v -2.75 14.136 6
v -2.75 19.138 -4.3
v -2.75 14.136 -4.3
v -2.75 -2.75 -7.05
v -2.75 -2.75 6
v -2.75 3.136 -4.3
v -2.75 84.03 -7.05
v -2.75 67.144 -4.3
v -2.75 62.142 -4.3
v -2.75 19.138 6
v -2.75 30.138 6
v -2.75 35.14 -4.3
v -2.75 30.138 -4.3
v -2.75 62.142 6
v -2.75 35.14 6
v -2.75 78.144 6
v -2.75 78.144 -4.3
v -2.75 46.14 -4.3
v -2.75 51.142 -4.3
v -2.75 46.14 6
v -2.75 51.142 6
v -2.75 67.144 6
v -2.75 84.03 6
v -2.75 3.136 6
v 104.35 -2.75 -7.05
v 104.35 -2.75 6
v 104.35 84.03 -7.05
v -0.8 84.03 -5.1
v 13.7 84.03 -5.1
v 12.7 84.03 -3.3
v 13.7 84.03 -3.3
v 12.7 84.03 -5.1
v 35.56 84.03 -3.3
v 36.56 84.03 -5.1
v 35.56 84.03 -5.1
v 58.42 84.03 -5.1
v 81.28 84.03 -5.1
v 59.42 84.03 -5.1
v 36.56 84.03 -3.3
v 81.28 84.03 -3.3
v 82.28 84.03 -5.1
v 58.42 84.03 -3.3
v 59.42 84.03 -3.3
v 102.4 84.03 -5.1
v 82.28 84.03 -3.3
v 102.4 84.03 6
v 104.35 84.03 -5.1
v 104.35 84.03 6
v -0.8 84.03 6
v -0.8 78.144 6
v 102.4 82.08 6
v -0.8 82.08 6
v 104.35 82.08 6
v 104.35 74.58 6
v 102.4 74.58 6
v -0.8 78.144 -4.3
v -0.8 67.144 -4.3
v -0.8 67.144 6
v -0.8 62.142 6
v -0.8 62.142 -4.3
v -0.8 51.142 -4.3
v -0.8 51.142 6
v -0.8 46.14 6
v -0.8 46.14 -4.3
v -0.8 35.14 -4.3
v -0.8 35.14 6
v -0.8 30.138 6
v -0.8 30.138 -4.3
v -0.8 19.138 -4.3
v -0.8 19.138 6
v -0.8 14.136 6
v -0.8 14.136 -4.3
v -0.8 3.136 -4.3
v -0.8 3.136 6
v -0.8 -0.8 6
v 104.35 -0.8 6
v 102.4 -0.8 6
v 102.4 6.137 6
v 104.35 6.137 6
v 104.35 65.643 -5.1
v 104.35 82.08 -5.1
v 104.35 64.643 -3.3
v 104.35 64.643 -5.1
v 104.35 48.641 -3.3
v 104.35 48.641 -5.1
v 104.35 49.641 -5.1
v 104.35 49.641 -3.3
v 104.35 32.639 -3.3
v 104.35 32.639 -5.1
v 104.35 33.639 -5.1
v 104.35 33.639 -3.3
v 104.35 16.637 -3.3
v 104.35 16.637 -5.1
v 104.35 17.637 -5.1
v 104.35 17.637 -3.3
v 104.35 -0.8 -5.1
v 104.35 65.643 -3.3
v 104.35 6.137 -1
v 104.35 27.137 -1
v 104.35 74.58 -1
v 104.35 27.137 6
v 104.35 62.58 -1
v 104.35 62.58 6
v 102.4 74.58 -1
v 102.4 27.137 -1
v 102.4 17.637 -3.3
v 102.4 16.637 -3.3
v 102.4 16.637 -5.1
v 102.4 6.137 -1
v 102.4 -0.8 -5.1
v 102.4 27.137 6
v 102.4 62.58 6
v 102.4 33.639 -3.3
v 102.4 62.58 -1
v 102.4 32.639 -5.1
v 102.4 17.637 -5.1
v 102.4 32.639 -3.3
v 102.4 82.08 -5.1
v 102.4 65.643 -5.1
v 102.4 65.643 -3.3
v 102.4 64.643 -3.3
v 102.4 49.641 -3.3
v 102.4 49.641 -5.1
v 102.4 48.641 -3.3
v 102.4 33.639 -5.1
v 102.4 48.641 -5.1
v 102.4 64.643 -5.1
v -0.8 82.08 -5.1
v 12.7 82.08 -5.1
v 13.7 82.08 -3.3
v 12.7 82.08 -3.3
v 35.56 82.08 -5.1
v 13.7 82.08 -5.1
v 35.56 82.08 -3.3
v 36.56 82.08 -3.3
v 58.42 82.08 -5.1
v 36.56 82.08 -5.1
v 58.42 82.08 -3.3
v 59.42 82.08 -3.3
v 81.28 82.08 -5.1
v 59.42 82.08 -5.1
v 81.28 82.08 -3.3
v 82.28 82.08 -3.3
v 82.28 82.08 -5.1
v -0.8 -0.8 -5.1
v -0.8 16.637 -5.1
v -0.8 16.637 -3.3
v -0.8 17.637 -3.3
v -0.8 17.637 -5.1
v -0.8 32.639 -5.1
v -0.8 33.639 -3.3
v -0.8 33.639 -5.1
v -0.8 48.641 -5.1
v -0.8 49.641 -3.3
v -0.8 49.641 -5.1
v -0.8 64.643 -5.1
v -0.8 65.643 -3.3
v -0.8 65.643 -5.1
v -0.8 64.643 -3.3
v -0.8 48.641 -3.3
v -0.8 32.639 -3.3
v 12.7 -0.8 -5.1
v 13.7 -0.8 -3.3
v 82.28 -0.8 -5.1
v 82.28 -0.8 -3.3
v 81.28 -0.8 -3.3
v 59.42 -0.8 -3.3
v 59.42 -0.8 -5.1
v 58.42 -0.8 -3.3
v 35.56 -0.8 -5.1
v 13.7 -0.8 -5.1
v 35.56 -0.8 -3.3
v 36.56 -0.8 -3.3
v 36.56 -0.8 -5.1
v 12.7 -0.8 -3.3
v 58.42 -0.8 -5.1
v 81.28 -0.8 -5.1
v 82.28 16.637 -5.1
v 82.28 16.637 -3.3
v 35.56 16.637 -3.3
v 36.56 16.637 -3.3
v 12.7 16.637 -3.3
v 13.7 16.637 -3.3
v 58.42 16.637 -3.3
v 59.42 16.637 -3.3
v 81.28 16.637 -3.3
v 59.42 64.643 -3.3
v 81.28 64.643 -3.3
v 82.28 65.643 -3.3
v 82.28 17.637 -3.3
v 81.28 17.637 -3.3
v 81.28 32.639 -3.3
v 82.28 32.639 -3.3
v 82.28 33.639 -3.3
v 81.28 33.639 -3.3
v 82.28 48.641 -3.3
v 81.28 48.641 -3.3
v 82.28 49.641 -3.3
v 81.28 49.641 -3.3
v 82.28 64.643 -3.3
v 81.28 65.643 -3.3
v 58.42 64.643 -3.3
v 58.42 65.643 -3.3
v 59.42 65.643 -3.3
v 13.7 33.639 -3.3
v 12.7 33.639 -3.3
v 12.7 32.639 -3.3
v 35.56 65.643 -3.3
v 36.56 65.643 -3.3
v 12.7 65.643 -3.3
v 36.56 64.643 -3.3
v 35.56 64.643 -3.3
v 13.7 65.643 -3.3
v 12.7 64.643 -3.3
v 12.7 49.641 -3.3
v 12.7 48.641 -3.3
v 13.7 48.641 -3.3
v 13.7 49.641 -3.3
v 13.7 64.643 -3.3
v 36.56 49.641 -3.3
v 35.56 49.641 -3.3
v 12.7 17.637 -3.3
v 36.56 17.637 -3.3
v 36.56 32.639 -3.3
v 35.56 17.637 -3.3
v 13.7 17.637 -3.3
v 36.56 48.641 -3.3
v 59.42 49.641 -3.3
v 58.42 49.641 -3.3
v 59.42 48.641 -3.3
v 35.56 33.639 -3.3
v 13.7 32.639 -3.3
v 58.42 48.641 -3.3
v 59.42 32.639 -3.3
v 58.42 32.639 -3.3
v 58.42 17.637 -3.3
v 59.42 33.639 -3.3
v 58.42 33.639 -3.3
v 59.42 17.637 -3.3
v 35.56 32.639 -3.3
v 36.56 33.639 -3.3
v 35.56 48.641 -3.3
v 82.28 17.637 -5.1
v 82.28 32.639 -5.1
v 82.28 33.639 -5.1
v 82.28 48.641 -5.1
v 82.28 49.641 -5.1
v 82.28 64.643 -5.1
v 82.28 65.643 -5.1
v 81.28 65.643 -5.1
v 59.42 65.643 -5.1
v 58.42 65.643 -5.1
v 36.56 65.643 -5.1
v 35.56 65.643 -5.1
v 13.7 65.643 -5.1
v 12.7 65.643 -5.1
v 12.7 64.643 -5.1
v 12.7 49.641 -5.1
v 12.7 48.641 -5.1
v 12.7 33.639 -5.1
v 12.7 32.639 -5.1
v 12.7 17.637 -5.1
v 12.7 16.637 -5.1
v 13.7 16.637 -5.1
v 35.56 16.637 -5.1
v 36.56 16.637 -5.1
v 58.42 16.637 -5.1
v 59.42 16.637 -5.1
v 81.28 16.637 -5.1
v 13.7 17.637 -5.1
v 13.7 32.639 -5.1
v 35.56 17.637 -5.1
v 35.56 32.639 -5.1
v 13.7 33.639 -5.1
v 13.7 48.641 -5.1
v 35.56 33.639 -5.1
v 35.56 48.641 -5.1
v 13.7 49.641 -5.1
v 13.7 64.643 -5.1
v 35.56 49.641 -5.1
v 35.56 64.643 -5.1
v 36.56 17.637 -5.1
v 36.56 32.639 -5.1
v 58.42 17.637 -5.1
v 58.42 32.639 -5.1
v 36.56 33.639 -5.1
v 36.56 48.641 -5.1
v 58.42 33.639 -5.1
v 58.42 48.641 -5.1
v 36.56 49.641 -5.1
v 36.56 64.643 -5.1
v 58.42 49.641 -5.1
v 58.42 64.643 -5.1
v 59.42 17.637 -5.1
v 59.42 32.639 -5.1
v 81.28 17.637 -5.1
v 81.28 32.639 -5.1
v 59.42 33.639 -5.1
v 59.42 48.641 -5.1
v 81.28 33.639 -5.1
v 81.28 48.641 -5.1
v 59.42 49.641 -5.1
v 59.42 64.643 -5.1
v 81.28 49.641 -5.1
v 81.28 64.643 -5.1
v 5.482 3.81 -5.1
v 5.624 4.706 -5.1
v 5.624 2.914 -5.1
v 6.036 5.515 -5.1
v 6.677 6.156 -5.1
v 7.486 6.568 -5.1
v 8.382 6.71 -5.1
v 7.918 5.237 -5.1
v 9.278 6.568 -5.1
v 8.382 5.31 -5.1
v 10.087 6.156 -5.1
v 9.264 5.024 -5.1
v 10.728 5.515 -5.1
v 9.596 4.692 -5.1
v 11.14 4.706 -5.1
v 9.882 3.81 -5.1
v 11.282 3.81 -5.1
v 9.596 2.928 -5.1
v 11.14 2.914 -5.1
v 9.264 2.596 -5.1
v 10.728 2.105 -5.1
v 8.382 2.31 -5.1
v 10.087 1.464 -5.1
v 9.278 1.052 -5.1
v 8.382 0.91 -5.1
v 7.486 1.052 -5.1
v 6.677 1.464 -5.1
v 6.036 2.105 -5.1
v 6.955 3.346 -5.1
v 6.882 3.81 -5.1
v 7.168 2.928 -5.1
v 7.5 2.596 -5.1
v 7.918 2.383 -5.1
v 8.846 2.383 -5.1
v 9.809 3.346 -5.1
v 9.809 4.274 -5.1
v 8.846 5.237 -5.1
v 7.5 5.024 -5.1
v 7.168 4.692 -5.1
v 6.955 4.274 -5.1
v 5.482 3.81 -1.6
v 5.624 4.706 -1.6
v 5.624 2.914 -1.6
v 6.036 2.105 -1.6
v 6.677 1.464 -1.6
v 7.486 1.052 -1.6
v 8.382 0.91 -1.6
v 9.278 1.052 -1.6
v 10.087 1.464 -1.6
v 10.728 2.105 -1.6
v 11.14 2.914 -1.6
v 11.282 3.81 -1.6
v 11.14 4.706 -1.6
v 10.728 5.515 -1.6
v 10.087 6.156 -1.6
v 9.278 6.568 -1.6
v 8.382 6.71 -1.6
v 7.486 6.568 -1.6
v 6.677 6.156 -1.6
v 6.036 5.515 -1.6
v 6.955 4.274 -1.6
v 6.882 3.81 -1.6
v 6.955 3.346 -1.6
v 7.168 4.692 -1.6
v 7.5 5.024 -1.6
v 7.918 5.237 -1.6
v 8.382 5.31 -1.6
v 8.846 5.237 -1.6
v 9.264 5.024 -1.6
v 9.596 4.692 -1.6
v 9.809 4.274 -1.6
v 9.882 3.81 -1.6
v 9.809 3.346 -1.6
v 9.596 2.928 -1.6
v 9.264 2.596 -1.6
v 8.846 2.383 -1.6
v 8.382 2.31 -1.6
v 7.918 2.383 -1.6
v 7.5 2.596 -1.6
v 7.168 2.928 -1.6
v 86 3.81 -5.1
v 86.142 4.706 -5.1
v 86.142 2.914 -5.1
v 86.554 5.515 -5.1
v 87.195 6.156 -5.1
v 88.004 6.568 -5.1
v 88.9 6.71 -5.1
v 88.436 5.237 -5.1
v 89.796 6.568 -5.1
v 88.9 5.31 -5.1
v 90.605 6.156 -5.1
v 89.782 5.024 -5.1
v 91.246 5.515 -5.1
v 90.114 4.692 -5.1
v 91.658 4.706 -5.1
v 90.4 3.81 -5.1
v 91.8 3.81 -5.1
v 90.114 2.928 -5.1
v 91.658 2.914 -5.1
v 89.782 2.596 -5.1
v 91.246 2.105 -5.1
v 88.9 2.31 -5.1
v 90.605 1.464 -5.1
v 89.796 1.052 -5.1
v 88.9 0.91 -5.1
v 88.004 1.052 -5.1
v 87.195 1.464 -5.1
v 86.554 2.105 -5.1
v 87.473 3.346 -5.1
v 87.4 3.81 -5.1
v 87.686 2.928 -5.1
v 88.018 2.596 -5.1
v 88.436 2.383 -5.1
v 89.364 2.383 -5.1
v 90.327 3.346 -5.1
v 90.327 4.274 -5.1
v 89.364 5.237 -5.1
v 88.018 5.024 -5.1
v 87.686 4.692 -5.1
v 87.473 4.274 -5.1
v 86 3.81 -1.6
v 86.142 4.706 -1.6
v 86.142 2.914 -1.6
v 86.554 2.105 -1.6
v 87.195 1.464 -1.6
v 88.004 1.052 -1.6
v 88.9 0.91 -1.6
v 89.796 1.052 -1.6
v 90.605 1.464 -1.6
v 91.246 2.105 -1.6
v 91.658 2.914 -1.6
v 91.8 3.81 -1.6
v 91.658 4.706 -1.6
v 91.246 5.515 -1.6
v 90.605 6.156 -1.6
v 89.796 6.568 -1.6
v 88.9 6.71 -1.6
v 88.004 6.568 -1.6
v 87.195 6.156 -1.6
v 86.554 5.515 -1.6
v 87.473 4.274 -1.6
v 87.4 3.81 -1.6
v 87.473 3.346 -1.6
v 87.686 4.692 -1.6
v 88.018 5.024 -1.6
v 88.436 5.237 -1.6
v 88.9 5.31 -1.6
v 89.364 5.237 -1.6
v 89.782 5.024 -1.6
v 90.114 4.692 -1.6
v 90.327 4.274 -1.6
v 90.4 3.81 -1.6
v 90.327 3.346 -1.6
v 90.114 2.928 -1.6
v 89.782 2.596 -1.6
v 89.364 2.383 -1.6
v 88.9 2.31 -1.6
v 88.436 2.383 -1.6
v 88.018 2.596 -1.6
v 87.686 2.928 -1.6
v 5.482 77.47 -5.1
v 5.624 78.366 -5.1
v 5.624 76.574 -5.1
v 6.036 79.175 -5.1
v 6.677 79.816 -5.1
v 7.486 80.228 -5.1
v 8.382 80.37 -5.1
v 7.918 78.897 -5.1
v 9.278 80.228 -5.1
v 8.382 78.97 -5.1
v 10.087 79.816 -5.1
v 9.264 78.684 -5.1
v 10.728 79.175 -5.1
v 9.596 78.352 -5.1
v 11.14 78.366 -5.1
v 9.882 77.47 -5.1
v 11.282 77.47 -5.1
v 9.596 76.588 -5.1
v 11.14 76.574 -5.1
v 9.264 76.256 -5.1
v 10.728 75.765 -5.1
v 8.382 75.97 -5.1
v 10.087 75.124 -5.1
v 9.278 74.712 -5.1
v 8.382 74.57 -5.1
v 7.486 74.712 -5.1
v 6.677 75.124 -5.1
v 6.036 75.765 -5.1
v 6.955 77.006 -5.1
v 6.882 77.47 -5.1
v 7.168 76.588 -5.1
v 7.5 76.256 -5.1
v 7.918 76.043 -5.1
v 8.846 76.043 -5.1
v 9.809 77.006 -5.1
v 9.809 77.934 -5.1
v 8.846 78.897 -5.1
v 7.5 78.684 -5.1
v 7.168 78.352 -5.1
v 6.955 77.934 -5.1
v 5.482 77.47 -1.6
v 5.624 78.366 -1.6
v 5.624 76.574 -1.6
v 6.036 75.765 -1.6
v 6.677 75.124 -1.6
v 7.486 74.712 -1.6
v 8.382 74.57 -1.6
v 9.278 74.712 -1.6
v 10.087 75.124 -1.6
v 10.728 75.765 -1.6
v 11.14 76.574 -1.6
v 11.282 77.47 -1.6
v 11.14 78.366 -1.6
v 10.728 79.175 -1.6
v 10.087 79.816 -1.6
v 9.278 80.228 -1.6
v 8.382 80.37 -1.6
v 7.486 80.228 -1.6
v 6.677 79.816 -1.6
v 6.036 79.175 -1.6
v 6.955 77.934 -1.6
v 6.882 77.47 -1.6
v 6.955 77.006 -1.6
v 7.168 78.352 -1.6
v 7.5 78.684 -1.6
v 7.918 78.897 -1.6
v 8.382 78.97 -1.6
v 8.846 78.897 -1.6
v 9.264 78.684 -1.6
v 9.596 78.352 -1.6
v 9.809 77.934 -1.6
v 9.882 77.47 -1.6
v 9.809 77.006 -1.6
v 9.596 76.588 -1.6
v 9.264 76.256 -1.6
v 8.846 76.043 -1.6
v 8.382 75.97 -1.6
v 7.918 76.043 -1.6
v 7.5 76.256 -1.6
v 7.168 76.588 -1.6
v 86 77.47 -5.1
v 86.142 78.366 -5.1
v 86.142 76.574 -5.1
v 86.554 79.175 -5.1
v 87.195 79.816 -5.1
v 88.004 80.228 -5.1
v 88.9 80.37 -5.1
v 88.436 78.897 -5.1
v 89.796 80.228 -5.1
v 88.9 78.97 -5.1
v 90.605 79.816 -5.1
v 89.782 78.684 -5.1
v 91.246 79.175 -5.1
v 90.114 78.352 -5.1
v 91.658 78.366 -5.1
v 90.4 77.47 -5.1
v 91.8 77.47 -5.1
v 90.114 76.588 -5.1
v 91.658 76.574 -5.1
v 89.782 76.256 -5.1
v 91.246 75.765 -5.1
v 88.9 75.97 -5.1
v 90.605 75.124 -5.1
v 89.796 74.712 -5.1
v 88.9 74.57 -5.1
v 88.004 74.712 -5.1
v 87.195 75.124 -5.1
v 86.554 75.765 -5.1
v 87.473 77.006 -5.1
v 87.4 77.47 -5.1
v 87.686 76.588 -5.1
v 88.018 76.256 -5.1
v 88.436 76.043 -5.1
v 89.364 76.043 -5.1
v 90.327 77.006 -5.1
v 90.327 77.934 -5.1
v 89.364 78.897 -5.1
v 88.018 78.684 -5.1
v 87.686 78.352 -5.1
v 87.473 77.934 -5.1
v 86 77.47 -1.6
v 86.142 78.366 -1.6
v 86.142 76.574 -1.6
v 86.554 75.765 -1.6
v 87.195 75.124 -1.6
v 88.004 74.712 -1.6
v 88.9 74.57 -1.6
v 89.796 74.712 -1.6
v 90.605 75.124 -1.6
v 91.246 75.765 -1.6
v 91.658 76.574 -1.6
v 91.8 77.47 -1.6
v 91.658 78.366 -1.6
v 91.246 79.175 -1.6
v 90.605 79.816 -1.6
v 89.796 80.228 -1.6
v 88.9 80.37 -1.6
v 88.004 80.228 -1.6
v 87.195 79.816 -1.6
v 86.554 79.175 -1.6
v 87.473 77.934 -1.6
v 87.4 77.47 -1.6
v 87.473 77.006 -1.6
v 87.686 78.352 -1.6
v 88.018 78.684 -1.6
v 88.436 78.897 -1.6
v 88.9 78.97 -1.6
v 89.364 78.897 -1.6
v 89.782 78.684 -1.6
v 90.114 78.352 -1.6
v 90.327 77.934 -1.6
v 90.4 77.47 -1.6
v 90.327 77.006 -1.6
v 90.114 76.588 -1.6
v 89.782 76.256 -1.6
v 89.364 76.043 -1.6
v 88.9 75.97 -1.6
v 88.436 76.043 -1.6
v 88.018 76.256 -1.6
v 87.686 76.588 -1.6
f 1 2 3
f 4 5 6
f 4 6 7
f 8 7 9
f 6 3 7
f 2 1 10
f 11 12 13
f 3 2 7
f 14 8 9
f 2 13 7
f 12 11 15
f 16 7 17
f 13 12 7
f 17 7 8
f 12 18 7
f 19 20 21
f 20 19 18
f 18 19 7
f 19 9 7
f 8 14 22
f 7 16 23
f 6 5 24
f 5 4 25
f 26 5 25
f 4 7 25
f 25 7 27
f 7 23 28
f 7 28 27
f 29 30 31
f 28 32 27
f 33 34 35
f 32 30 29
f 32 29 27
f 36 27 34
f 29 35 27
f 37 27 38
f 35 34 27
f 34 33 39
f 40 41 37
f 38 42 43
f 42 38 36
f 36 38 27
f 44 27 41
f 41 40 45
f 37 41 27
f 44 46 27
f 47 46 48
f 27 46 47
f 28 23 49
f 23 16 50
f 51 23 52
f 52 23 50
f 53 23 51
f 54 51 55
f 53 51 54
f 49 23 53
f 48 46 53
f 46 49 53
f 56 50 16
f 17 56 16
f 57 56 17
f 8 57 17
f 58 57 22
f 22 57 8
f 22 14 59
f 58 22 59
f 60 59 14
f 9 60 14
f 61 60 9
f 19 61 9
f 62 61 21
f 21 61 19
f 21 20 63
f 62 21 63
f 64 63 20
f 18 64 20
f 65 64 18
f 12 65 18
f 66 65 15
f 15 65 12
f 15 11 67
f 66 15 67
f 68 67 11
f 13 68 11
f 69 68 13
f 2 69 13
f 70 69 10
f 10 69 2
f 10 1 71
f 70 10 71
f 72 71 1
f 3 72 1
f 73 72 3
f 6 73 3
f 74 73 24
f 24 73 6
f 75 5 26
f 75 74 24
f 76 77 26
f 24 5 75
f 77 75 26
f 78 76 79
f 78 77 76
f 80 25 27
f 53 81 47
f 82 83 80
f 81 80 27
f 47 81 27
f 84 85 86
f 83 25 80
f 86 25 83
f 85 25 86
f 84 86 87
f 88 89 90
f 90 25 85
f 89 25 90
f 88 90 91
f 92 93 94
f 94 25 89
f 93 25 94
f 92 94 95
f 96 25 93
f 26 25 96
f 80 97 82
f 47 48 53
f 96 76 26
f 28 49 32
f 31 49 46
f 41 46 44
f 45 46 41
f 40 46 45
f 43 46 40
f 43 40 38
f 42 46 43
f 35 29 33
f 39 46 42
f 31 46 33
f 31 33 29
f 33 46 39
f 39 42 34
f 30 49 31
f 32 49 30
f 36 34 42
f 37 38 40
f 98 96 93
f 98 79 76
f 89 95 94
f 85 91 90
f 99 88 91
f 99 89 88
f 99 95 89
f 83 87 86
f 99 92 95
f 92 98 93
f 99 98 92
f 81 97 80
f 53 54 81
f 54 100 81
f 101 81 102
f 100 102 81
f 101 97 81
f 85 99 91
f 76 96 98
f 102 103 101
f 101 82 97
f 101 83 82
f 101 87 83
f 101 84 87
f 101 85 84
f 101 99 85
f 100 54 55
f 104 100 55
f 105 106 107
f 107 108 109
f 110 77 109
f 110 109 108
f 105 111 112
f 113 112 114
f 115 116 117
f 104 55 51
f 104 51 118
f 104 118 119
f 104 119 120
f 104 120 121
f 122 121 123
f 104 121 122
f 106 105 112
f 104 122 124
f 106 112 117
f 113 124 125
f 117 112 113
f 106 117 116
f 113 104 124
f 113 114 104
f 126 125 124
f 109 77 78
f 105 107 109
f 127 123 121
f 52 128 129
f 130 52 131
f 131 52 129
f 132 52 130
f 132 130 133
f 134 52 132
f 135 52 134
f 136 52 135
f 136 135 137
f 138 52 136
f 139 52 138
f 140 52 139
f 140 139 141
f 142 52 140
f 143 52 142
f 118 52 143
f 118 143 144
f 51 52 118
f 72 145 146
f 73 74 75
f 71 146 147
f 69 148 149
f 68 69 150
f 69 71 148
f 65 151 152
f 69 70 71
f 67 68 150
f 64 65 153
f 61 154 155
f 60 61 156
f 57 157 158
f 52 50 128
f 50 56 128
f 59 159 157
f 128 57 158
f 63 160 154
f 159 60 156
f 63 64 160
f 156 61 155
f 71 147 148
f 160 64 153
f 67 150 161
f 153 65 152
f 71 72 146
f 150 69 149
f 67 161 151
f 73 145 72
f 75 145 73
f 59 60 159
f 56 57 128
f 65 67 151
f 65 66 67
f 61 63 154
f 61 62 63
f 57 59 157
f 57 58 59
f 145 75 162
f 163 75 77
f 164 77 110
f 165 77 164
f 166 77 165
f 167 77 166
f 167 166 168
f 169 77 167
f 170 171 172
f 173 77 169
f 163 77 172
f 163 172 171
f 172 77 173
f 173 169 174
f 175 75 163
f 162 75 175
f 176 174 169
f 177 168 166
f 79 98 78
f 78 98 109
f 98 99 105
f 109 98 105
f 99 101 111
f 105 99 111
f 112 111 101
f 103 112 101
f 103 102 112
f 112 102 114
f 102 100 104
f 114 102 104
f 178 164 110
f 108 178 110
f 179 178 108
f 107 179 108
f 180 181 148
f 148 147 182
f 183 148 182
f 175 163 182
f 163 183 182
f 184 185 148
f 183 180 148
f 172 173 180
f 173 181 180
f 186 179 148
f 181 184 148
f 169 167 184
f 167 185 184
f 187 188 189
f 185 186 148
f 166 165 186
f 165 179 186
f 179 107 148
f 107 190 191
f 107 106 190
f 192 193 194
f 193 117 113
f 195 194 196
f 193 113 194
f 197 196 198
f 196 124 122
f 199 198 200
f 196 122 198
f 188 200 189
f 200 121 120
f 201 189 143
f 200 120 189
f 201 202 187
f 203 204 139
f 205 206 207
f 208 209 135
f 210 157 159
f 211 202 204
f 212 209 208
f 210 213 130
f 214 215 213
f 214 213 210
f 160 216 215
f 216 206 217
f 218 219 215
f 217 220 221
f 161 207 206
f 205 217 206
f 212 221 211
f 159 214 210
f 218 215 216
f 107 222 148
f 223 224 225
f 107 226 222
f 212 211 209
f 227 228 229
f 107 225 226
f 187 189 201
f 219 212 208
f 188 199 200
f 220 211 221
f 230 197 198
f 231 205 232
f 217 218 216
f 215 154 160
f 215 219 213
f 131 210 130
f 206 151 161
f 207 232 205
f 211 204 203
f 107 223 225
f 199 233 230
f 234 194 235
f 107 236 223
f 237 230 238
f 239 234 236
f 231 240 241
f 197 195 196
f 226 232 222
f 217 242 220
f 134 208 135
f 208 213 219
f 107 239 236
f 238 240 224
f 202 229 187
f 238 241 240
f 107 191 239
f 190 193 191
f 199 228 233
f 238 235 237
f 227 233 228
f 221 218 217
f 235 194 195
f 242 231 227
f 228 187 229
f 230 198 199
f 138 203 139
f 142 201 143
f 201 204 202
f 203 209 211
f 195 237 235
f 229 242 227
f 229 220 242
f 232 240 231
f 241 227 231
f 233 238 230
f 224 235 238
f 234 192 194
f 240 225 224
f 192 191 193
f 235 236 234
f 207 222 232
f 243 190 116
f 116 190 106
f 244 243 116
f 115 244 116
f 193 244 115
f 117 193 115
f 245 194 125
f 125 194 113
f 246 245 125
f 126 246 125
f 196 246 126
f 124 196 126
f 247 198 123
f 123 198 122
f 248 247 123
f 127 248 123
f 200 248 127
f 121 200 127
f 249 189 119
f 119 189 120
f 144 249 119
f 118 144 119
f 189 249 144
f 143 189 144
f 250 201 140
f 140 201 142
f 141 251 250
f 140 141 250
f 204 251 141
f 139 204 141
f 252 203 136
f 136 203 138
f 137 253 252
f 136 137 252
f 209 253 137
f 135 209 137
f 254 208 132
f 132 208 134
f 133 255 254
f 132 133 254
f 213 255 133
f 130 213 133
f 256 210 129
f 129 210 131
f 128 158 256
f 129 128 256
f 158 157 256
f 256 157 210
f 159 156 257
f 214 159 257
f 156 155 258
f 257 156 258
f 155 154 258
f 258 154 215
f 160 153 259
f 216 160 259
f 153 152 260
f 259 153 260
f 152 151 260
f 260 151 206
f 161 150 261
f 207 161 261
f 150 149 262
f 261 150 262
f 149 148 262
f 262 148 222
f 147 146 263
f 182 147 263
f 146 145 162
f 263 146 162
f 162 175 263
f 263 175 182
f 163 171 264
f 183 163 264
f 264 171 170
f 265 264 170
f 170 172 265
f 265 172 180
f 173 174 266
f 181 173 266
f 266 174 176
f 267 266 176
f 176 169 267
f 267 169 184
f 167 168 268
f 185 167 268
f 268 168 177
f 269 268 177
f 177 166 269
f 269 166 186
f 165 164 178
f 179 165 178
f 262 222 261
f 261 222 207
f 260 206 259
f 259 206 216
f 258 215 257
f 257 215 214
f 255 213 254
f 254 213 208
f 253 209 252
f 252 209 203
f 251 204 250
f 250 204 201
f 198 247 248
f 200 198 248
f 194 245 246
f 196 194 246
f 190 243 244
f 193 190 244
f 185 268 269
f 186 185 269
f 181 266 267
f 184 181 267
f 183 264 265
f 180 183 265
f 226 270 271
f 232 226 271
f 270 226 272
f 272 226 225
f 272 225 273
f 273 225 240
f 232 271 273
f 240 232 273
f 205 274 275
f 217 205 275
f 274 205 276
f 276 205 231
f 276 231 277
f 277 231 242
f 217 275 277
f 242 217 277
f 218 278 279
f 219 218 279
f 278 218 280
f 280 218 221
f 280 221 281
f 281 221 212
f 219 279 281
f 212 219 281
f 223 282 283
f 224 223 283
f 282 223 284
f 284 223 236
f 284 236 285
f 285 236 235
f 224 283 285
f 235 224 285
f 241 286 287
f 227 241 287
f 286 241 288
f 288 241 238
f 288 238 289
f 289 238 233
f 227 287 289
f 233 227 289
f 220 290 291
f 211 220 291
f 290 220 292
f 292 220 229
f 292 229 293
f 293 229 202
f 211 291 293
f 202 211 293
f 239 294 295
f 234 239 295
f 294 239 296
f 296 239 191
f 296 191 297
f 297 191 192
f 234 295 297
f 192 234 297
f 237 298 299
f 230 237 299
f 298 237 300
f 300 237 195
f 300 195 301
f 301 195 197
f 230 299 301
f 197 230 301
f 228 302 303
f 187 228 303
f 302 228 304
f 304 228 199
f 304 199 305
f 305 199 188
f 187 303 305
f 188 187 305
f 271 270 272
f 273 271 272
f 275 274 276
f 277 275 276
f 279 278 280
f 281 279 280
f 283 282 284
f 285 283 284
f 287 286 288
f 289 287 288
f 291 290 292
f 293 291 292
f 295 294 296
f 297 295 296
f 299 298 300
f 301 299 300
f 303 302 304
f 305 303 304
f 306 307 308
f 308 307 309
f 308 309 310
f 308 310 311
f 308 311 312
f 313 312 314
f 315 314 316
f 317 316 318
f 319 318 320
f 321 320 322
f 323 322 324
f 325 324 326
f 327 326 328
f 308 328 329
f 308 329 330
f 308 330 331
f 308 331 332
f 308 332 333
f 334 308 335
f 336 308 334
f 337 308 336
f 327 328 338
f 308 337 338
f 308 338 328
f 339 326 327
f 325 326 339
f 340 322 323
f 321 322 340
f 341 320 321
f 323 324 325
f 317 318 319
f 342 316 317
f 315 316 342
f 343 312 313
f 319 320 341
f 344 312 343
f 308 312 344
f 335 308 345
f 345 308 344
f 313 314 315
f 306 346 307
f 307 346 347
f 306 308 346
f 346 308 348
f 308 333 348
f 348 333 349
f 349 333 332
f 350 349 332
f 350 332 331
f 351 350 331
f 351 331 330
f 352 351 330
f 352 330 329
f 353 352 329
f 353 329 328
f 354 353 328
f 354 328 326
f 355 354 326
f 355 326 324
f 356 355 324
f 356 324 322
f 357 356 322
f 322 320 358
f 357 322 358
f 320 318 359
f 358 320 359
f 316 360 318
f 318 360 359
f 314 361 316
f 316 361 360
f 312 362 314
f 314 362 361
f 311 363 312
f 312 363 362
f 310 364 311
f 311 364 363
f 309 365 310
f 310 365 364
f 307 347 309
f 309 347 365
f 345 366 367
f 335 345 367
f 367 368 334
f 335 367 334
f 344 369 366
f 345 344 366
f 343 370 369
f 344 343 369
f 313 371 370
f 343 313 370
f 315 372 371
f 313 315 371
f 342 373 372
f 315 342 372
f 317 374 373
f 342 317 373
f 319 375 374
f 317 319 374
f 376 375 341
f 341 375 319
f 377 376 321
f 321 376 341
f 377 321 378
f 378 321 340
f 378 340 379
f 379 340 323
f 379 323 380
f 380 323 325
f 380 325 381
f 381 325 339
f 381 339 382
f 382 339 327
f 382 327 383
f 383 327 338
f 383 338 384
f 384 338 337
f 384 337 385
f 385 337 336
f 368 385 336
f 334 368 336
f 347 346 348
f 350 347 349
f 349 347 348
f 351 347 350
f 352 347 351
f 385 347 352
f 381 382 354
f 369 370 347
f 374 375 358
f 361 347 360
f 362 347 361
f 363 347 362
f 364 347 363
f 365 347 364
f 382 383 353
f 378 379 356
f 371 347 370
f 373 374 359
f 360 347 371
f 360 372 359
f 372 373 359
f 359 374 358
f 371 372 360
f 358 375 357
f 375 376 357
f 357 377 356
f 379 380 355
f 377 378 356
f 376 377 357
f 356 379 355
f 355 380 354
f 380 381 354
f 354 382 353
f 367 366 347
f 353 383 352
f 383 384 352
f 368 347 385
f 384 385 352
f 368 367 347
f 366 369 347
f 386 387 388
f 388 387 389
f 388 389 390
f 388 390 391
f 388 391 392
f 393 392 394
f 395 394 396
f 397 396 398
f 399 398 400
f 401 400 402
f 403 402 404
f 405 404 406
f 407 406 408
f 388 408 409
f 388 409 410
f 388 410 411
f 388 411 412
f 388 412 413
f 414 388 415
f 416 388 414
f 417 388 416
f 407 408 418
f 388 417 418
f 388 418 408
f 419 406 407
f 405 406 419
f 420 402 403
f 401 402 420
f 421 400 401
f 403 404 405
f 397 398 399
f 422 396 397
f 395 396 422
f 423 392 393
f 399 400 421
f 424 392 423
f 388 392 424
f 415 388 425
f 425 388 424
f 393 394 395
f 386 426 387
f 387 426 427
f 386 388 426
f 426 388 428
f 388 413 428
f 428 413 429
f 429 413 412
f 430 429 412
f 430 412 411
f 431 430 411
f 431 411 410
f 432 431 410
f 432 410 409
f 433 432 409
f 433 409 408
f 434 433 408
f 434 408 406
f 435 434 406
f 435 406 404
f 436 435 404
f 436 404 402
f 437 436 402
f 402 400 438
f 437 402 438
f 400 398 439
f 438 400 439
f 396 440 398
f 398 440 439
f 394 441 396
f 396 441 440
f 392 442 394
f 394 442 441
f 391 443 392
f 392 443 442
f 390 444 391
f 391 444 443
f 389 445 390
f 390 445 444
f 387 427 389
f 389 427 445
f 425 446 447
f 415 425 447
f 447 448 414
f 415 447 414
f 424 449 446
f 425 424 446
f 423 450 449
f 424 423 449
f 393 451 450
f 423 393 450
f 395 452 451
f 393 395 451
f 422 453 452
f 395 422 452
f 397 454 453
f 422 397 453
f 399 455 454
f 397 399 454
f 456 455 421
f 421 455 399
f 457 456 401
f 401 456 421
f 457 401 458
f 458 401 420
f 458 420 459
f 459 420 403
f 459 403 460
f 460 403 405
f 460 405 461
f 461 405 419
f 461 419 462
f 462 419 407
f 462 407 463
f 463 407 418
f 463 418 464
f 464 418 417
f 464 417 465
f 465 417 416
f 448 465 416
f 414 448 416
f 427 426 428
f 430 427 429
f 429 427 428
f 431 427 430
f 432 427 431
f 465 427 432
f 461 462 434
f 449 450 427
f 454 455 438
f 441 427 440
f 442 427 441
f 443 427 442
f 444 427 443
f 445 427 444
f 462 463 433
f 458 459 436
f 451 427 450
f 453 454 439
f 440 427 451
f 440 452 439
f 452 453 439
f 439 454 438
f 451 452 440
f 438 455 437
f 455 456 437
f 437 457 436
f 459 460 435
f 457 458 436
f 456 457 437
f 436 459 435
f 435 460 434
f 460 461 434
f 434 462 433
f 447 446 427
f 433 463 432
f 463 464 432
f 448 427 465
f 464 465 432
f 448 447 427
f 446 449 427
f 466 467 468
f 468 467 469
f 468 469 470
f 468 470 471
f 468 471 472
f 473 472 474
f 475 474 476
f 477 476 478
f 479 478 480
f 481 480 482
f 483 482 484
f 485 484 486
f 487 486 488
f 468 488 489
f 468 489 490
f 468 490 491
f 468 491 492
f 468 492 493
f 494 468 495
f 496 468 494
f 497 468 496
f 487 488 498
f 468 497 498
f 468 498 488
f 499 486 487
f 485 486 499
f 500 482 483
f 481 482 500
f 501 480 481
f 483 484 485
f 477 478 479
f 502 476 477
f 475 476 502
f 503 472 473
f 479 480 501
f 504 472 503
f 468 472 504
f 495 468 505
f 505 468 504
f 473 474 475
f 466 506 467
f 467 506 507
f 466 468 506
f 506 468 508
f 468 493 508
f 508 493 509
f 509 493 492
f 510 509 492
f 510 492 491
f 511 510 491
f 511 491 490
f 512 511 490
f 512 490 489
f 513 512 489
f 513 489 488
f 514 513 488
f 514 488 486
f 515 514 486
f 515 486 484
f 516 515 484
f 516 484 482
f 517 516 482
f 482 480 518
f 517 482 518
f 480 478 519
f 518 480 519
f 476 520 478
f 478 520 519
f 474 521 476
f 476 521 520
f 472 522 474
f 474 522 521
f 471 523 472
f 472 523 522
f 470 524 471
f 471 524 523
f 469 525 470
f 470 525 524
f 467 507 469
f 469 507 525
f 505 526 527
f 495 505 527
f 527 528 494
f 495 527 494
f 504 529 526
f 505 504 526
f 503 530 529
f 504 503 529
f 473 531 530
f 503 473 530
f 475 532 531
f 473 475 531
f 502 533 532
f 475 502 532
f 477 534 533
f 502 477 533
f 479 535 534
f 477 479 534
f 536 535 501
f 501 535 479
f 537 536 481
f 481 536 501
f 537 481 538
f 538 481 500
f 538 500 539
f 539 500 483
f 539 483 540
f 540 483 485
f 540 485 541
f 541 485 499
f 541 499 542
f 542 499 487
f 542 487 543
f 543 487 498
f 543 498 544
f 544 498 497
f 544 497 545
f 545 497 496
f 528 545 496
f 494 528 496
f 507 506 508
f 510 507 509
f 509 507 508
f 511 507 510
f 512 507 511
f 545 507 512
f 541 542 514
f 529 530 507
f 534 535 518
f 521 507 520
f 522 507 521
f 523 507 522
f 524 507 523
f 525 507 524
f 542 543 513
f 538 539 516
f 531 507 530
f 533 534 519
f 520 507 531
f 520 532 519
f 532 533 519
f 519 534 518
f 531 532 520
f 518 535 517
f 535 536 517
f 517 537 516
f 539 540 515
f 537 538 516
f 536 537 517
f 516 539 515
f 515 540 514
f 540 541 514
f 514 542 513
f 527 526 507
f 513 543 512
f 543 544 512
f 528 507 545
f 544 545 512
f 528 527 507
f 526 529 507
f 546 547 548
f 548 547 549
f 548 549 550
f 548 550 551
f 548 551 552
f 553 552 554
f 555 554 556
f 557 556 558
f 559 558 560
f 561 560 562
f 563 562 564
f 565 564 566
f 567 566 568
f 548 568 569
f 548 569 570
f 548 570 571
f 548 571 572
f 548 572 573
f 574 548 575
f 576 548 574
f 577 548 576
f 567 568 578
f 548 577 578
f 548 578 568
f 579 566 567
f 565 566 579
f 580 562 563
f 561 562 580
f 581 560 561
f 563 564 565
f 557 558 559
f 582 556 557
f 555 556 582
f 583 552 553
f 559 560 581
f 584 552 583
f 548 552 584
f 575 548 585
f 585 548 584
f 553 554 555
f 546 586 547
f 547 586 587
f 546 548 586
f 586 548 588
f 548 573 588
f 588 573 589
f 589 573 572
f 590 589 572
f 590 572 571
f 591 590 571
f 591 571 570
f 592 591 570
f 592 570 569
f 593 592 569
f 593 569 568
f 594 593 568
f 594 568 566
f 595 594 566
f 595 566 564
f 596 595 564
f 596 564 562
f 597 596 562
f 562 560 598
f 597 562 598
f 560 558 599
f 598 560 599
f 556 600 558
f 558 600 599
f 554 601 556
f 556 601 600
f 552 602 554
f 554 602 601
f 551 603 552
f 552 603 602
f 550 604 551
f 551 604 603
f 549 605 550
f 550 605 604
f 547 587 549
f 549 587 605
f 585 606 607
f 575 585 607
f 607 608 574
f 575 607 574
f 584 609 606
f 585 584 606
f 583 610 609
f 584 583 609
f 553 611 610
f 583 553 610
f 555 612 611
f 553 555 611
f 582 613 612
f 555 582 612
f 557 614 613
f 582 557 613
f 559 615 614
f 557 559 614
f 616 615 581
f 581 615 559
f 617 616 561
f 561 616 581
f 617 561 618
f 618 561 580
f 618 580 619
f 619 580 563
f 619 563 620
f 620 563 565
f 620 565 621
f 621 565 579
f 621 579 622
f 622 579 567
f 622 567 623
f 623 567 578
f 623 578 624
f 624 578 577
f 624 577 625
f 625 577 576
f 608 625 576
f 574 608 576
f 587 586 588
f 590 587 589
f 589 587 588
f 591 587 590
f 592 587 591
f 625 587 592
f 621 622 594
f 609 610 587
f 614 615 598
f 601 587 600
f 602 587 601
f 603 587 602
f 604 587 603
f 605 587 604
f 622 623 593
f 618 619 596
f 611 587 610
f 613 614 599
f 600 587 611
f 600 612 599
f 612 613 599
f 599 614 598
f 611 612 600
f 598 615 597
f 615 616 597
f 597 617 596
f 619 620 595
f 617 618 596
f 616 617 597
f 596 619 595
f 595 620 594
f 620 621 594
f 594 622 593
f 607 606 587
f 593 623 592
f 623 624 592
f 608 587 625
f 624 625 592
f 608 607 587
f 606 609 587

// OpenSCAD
// Enclosure for GNSS Firehose board, bottom piece
//
// GNSS Firehose
// Copyright (c) 2012 Peter Monta <pmonta@gmail.com>


//
// wall cutouts for connectors
//

module cutout(x,y)
{ translate([0,-y/2,0]) cube([x,y,100]); }

//
// bosses for screws
// 1.5 mm hole (suitable for UNC #4 or M2.5), 1.4 mm annulus
//

module boss(x)
{ difference () {
    cylinder(h=x,r=2.9,center=false);
    cylinder(h=x,r=1.5,center=false);
  }
}

//
// ribs in y and x directions
// 1.0 mm thick, 1.8 mm high
//

module rib_y(y)
{ cube([1.0,y,1.95+1.8],center=false); }

module rib_x(x)
{ cube([x,1.0,1.95+1.8],center=false); }

//
// main
//

module gnss_firehose_bottom()
{ pcb_x = 4.000*25.4;  // PCB dimensions and thickness
  pcb_y = 3.200*25.4;
  pcb_t = 0.063*25.4;
  eps = 0.8;           // clearance gap between PCB and plastic
  wall = 1.95;         // wall thickness
  base = 1.95;         // base thickness
  h = 6;               // height above PCB
  cavity = 3.5;        // space below PCB and above base
  m = 25.4;            // convert between inch and mm

  _w = wall+eps;             // derived quantities
  _th = base+cavity+pcb_t+h;
  _c = pcb_t+cavity;
  _b = pcb_t+cavity+base;

  difference () {
    union () {
      translate([-_w, -_w, -_b]) {                              // four walls
        cube([pcb_x+2*_w, pcb_y+2*_w, base]);
        cube([pcb_x+2*_w, wall, _th]);
        translate([0, pcb_y+(wall+2*eps), 0])
          cube([pcb_x+2*_w, wall, _th]);
        cube([wall, pcb_y+2*_w, _th]);
        translate([pcb_x+(wall+2*eps), 0, 0])
          cube([wall, pcb_y+2*_w, _th]);
      }
      translate([0.330*m,0.150*m,-_c]) boss(cavity);            // screw mounts
      translate([3.500*m,0.150*m,-_c]) boss(cavity);
      translate([0.330*m,3.050*m,-_c]) boss(cavity);
      translate([3.500*m,3.050*m,-_c]) boss(cavity);
      translate([0.5*m,-_w,-_b]) rib_y(pcb_y+2*_w);             // vertical ribs
      translate([1.4*m,-_w,-_b]) rib_y(pcb_y+2*_w);
      translate([2.3*m,-_w,-_b]) rib_y(pcb_y+2*_w);
      translate([3.2*m,-_w,-_b]) rib_y(pcb_y+2*_w);
      translate([-_w,(0.340+0.315)*m,-_b]) rib_x(pcb_x+2*_w);   // horizontal ribs
      translate([-_w,(0.970+0.315)*m,-_b]) rib_x(pcb_x+2*_w);
      translate([-_w,(1.600+0.315)*m,-_b]) rib_x(pcb_x+2*_w);
      translate([-_w,(2.230+0.315)*m,-_b]) rib_x(pcb_x+2*_w);
    }
    union () {
      translate([-_w,0.340*m,-(pcb_t+2.7)]) cutout(wall,11);    // SMA cutouts
      translate([-_w,0.970*m,-(pcb_t+2.7)]) cutout(wall,11);
      translate([-_w,1.600*m,-(pcb_t+2.7)]) cutout(wall,11);
      translate([-_w,2.230*m,-(pcb_t+2.7)]) cutout(wall,11);
      translate([-_w,2.860*m,-(pcb_t+2.7)]) cutout(wall,11);
      translate([pcb_x+eps,0.655*m,-1]) cutout(wall,21);        // Ethernet cutout
      translate([pcb_x+eps,2.700*m,-1]) cutout(wall,12);        // power-jack cutout
    }
  }
}

$fn=20;
gnss_firehose_bottom();
